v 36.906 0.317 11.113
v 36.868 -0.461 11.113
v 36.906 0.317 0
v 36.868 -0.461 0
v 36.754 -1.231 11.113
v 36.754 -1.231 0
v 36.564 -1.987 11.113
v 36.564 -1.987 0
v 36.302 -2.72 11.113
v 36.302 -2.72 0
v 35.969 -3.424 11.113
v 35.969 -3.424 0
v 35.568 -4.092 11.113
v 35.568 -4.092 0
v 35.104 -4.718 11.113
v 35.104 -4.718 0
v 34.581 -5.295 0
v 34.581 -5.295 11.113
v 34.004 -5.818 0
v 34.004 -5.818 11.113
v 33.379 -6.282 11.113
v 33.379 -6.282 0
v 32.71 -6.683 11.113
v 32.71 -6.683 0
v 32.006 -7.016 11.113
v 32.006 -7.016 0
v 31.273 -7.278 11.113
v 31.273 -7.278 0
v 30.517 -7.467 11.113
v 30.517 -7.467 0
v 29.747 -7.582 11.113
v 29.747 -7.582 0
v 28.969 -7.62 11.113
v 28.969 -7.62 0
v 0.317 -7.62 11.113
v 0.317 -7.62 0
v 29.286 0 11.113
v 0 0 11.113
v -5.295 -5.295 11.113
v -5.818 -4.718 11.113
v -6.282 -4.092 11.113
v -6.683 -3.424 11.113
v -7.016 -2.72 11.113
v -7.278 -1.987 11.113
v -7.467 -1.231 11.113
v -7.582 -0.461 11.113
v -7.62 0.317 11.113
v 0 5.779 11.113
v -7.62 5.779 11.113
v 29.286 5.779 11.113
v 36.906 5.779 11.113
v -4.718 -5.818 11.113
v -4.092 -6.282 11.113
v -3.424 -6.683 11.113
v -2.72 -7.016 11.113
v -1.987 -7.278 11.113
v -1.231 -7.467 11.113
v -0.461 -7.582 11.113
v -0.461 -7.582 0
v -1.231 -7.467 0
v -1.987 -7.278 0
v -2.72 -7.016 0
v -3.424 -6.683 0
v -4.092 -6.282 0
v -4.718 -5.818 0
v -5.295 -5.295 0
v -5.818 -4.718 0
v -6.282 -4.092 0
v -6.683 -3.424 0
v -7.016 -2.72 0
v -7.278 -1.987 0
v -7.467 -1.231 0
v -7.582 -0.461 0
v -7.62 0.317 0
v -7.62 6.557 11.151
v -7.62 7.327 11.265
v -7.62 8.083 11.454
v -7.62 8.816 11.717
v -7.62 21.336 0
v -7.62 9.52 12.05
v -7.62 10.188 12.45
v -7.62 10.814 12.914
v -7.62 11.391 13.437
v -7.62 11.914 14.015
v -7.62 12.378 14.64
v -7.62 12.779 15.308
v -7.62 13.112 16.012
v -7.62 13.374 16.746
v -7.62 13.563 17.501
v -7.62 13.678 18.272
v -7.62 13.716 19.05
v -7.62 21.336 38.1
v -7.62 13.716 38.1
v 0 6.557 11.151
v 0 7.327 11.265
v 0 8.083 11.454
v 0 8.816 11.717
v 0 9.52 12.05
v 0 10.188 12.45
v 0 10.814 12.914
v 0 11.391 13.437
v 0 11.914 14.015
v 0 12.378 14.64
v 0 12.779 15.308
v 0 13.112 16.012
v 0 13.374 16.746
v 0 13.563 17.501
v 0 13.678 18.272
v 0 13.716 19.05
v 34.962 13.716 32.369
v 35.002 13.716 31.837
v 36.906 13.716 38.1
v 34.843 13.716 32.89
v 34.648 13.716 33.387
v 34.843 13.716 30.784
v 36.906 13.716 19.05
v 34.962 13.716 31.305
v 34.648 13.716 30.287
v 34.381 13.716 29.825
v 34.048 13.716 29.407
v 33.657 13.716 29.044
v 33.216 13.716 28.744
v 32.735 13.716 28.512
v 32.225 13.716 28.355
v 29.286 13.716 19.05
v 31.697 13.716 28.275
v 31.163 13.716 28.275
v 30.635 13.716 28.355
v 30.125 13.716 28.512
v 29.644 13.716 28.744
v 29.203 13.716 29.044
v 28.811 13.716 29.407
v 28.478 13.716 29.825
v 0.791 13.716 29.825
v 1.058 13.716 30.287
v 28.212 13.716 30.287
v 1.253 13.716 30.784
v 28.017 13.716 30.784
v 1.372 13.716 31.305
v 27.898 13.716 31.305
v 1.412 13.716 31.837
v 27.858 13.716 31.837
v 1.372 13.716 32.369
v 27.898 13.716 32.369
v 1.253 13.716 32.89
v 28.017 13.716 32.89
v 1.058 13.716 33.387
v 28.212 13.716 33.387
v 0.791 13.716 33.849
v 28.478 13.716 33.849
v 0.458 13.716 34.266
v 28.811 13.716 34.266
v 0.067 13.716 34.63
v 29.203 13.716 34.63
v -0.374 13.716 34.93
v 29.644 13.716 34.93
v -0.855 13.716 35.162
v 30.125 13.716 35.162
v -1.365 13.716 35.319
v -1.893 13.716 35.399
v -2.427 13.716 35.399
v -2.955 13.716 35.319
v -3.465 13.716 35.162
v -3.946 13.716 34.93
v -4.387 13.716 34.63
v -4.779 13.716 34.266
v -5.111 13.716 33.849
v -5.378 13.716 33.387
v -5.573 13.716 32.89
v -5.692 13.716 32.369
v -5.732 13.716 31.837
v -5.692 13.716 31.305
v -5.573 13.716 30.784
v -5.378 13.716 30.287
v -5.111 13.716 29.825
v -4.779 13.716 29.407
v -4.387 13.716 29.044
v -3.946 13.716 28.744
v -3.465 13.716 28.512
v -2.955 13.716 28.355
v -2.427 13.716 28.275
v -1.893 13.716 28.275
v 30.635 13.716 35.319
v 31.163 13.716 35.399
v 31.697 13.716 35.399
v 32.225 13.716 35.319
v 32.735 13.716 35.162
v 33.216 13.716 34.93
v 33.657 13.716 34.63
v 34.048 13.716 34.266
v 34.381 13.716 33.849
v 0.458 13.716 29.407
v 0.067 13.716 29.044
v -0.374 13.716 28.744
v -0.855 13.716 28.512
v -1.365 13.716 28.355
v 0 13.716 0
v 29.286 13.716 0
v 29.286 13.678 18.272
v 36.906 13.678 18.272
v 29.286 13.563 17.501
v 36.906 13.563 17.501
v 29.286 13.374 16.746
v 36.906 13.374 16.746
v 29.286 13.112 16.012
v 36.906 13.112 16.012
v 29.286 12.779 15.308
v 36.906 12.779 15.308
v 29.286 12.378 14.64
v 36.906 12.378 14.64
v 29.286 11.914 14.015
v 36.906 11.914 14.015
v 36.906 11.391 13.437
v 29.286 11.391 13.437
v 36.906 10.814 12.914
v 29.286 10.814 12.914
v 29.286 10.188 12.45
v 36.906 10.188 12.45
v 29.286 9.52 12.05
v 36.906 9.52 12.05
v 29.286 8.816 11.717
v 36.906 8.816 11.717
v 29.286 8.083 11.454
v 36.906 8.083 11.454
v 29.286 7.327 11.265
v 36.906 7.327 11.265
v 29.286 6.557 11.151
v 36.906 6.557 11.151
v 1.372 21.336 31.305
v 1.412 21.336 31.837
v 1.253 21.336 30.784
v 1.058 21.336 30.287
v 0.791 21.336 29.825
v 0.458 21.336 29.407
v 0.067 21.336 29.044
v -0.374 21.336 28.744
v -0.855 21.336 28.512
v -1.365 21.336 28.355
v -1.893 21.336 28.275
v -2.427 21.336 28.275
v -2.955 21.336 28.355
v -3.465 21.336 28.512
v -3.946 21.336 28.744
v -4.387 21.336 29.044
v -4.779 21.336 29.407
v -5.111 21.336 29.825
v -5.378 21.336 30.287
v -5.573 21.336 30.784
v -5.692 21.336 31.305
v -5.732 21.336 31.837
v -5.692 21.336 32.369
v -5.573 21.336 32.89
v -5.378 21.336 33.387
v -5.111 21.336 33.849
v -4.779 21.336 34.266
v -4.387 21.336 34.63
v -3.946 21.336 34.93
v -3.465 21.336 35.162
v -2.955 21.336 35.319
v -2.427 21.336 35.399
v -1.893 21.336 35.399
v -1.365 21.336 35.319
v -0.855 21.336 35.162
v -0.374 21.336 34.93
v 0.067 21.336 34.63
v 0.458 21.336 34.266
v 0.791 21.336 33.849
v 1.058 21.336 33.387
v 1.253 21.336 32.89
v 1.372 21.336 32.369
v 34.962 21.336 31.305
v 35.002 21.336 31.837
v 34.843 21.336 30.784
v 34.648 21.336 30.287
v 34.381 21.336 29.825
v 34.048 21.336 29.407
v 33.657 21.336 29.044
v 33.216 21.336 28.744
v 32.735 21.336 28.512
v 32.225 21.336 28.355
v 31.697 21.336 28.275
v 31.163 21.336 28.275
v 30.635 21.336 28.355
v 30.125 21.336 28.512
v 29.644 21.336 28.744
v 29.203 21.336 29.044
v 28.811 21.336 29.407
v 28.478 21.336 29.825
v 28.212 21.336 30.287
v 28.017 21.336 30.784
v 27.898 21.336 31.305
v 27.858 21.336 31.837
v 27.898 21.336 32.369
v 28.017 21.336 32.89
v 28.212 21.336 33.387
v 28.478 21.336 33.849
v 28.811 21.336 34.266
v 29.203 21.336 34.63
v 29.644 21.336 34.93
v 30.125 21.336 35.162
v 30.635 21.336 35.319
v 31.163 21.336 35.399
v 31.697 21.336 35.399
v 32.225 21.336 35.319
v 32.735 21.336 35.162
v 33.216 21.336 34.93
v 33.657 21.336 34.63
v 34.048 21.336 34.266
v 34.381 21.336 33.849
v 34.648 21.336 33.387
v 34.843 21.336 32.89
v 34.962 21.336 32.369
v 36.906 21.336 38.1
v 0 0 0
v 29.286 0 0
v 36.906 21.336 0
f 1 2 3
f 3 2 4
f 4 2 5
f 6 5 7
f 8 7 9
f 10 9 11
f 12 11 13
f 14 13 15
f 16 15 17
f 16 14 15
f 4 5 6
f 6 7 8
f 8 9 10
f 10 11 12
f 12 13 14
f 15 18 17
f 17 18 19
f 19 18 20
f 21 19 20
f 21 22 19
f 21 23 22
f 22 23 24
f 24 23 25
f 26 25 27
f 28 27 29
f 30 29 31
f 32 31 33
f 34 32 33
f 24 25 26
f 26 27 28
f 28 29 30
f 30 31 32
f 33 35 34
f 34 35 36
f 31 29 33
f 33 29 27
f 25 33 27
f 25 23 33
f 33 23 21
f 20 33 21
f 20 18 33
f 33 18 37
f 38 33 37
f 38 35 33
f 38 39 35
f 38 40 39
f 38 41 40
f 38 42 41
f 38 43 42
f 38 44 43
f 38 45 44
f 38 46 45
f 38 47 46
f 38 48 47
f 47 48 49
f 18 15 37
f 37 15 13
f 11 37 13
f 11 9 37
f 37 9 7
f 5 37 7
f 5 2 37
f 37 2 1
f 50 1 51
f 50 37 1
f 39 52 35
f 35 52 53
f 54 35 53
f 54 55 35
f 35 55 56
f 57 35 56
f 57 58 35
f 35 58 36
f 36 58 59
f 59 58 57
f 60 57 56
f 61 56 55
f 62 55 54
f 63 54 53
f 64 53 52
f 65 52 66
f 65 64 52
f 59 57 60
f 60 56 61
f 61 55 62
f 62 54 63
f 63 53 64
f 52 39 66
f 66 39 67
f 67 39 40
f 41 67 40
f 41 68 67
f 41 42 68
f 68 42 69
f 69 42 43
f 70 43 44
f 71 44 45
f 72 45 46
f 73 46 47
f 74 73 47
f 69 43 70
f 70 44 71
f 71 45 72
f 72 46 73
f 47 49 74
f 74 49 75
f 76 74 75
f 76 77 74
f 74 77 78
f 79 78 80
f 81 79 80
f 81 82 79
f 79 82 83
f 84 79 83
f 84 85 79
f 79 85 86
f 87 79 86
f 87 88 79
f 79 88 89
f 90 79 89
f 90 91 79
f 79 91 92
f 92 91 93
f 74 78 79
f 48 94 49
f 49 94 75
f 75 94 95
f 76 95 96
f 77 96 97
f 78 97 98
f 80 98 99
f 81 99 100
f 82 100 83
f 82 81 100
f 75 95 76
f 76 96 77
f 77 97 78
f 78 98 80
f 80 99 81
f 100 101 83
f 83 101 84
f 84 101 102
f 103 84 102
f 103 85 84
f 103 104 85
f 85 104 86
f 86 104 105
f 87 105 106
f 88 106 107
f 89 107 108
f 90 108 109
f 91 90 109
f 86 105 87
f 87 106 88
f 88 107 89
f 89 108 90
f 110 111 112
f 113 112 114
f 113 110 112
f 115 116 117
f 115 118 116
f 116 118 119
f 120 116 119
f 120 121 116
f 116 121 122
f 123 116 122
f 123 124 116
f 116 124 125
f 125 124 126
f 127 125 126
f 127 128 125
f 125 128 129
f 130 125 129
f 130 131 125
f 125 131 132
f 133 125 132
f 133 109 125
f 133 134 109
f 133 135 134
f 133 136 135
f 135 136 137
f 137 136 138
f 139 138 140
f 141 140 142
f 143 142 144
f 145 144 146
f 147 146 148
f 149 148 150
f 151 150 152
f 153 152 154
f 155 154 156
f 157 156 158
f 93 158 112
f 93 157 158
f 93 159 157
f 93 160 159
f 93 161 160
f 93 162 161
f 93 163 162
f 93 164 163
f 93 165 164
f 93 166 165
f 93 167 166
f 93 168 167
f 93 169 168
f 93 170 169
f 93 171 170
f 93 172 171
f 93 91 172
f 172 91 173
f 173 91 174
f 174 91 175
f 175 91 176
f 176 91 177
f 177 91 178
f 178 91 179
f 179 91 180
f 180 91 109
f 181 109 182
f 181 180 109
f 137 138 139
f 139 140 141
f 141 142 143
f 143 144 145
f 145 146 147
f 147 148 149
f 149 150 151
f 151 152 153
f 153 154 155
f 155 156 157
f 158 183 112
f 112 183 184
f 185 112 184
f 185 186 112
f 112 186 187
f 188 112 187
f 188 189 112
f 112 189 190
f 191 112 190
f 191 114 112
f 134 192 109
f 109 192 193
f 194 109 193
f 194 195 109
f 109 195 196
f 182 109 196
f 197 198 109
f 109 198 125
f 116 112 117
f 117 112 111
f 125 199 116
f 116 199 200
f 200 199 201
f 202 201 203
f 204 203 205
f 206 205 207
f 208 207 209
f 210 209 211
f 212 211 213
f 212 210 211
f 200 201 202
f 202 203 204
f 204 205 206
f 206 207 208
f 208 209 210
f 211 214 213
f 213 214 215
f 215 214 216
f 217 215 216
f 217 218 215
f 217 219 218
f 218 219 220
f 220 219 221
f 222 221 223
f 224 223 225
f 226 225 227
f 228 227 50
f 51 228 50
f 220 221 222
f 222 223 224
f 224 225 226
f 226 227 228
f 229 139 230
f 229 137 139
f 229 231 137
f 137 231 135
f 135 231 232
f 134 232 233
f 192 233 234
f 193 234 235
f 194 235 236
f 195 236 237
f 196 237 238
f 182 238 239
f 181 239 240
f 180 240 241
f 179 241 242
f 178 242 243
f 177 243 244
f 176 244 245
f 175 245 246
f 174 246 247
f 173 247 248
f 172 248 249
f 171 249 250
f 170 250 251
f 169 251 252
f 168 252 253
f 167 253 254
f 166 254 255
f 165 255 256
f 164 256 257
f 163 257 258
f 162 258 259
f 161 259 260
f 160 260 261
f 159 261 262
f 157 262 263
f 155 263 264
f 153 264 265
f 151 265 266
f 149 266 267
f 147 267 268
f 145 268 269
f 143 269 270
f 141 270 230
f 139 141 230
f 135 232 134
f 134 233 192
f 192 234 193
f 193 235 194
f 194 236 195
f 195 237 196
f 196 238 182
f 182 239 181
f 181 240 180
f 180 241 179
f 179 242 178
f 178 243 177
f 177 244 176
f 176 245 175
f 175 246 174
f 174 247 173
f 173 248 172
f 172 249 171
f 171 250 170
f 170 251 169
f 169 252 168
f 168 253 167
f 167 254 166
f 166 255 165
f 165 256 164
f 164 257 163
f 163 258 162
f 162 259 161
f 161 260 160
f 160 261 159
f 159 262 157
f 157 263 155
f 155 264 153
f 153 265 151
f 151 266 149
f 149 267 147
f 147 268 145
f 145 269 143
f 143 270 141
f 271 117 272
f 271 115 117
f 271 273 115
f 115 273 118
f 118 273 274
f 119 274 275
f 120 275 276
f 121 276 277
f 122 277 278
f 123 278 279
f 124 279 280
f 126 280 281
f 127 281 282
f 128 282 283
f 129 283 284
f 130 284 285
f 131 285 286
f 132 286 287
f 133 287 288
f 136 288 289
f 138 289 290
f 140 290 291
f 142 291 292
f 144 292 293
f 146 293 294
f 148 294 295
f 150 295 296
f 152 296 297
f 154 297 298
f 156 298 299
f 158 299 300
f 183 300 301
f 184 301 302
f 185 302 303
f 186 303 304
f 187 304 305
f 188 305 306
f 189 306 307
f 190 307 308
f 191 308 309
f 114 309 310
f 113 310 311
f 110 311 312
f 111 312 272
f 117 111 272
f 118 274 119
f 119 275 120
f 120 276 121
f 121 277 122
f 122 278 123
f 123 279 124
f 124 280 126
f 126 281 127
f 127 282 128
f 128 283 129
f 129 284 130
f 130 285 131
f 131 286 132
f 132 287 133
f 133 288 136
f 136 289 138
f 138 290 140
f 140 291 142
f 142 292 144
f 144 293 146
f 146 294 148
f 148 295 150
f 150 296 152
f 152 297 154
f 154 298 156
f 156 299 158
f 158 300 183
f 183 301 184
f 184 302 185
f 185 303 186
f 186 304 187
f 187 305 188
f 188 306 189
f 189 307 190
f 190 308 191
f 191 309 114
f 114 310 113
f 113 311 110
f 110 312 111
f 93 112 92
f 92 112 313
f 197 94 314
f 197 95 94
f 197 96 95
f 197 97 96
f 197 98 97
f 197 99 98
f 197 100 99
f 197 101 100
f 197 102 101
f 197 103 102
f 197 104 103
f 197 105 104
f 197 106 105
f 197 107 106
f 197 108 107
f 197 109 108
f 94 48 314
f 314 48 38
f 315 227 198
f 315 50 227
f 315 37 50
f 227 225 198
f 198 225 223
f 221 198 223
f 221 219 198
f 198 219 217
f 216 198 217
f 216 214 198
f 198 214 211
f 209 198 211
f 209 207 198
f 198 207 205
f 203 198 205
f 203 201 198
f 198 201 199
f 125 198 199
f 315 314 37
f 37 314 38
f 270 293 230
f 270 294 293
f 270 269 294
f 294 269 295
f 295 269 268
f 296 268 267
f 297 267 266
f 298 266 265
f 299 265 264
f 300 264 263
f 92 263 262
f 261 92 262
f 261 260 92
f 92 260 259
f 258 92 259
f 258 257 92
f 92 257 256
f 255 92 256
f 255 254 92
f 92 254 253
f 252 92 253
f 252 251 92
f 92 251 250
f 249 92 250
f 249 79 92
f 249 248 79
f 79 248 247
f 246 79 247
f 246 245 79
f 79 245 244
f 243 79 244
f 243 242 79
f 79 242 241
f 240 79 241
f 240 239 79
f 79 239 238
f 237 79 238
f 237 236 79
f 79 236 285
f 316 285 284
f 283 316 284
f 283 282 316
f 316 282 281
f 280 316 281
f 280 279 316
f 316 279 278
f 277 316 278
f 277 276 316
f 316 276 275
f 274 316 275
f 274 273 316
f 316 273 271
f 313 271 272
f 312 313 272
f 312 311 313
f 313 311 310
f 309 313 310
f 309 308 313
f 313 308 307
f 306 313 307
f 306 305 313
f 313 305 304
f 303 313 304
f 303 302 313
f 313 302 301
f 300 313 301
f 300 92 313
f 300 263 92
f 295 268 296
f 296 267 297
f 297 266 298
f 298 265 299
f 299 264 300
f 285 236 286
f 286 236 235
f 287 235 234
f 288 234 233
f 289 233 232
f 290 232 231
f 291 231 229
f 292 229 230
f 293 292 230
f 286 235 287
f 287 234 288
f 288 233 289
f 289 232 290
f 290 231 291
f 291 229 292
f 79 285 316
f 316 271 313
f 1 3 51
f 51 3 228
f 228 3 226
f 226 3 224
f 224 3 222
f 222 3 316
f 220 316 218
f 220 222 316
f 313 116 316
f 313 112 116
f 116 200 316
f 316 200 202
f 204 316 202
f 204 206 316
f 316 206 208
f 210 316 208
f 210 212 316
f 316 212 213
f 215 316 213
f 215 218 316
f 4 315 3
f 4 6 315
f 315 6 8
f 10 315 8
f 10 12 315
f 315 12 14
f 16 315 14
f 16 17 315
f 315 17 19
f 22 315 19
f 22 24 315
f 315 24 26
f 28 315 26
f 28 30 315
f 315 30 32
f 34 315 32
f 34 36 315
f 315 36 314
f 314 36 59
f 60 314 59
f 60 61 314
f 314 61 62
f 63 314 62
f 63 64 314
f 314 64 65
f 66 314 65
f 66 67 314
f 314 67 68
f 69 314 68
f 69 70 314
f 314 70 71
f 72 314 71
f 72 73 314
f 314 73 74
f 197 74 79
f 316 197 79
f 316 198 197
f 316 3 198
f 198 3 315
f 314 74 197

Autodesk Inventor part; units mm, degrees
ref_plane "YZ Plane" through (0, 0, 0) normal (1, 0, 0) x (0, 1, 0)
ref_plane "XZ Plane" through (0, 0, 0) normal (0, 1, 0) x (-1, 0, 0)
ref_plane "XY Plane" through (0, 0, 0) normal (0, 0, 1) x (1, 0, 0)
sketch "Sketch1" plane through (0, 0, 0) normal (0, 0, 1) x (1, 0, 0)
  line L0 (0, 0) -> (29.2862, 0)
  line L1 (29.2862, 0) -> (29.2862, 13.716)
  line L2 (29.2862, 13.716) -> (0, 13.716)
  line L3 (0, 13.716) -> (0, 0)
  line L4 (14.6431, 13.716) -> (14.6431, 0) construction
  line L5 (0, 6.858) -> (29.2862, 6.858) construction
  line L6 (-7.62, -7.62) -> (36.9062, -7.62)
  line L7 (36.9062, -7.62) -> (36.9062, 21.336)
  line L8 (36.9062, 21.336) -> (-7.62, 21.336)
  line L9 (-7.62, 21.336) -> (-7.62, -7.62)
  line L10 (-7.62, -7.62) -> (36.9062, 21.336) construction
  line L11 (36.9062, -7.62) -> (-7.62, 21.336) construction
  point P0 (14.6431, 6.858)
  dimension "d0" = 29.2862
  dimension "d1" = 13.716
  dimension "d2" = 7.62
  dimension "d3" = 7.62
extrude "Extrusion1" add sketch "Sketch1" along normal blind 11.1125
sketch "Sketch2" plane through (0, 0, 11.1125) normal (0, 0, 1) x (1, 0, 0)
  line L0 (0, 13.716) -> (29.2862, 13.716) projected
  line L1 (36.9062, -7.62) -> (36.9062, 21.336) projected
  line L2 (36.9062, 21.336) -> (-7.62, 21.336) projected
  line L3 (-7.62, 21.336) -> (-7.62, -7.62) projected
  line L4 (-7.62, 13.716) -> (0, 13.716)
  line L5 (29.2862, 13.716) -> (36.9062, 13.716)
extrude "Extrusion2" add sketch "Sketch2" along normal blind 26.9875
sketch "Sketch3" plane through (0, 13.716, 0) normal (0, -1, 0) x (1, 0, 0)
  line L0 (36.9062, 11.1125) -> (36.9062, 38.1) projected
  line L1 (-7.62, 11.1125) -> (-7.62, 38.1) projected
  line L2 (-7.62, 31.837) -> (36.9062, 31.837) construction
  circle A0 centre (-2.1601, 31.837) radius 3.5719
  circle A1 centre (31.4297, 31.837) radius 3.5719
  dimension "d8" = 7.1437
  dimension "d9" = 7.1437
extrude "Extrusion3" cut sketch "Sketch3" against normal through all
fillet "Fillet1" radius 7.9375 2 edges at (33.0962, 13.716, 11.1125) (-3.81, 13.716, 11.1125)
fillet "Fillet2" radius 7.9375 2 edges at (-7.62, -7.62, 5.5563) (36.9062, -7.62, 5.5563)
properties part number "switch Holder"
